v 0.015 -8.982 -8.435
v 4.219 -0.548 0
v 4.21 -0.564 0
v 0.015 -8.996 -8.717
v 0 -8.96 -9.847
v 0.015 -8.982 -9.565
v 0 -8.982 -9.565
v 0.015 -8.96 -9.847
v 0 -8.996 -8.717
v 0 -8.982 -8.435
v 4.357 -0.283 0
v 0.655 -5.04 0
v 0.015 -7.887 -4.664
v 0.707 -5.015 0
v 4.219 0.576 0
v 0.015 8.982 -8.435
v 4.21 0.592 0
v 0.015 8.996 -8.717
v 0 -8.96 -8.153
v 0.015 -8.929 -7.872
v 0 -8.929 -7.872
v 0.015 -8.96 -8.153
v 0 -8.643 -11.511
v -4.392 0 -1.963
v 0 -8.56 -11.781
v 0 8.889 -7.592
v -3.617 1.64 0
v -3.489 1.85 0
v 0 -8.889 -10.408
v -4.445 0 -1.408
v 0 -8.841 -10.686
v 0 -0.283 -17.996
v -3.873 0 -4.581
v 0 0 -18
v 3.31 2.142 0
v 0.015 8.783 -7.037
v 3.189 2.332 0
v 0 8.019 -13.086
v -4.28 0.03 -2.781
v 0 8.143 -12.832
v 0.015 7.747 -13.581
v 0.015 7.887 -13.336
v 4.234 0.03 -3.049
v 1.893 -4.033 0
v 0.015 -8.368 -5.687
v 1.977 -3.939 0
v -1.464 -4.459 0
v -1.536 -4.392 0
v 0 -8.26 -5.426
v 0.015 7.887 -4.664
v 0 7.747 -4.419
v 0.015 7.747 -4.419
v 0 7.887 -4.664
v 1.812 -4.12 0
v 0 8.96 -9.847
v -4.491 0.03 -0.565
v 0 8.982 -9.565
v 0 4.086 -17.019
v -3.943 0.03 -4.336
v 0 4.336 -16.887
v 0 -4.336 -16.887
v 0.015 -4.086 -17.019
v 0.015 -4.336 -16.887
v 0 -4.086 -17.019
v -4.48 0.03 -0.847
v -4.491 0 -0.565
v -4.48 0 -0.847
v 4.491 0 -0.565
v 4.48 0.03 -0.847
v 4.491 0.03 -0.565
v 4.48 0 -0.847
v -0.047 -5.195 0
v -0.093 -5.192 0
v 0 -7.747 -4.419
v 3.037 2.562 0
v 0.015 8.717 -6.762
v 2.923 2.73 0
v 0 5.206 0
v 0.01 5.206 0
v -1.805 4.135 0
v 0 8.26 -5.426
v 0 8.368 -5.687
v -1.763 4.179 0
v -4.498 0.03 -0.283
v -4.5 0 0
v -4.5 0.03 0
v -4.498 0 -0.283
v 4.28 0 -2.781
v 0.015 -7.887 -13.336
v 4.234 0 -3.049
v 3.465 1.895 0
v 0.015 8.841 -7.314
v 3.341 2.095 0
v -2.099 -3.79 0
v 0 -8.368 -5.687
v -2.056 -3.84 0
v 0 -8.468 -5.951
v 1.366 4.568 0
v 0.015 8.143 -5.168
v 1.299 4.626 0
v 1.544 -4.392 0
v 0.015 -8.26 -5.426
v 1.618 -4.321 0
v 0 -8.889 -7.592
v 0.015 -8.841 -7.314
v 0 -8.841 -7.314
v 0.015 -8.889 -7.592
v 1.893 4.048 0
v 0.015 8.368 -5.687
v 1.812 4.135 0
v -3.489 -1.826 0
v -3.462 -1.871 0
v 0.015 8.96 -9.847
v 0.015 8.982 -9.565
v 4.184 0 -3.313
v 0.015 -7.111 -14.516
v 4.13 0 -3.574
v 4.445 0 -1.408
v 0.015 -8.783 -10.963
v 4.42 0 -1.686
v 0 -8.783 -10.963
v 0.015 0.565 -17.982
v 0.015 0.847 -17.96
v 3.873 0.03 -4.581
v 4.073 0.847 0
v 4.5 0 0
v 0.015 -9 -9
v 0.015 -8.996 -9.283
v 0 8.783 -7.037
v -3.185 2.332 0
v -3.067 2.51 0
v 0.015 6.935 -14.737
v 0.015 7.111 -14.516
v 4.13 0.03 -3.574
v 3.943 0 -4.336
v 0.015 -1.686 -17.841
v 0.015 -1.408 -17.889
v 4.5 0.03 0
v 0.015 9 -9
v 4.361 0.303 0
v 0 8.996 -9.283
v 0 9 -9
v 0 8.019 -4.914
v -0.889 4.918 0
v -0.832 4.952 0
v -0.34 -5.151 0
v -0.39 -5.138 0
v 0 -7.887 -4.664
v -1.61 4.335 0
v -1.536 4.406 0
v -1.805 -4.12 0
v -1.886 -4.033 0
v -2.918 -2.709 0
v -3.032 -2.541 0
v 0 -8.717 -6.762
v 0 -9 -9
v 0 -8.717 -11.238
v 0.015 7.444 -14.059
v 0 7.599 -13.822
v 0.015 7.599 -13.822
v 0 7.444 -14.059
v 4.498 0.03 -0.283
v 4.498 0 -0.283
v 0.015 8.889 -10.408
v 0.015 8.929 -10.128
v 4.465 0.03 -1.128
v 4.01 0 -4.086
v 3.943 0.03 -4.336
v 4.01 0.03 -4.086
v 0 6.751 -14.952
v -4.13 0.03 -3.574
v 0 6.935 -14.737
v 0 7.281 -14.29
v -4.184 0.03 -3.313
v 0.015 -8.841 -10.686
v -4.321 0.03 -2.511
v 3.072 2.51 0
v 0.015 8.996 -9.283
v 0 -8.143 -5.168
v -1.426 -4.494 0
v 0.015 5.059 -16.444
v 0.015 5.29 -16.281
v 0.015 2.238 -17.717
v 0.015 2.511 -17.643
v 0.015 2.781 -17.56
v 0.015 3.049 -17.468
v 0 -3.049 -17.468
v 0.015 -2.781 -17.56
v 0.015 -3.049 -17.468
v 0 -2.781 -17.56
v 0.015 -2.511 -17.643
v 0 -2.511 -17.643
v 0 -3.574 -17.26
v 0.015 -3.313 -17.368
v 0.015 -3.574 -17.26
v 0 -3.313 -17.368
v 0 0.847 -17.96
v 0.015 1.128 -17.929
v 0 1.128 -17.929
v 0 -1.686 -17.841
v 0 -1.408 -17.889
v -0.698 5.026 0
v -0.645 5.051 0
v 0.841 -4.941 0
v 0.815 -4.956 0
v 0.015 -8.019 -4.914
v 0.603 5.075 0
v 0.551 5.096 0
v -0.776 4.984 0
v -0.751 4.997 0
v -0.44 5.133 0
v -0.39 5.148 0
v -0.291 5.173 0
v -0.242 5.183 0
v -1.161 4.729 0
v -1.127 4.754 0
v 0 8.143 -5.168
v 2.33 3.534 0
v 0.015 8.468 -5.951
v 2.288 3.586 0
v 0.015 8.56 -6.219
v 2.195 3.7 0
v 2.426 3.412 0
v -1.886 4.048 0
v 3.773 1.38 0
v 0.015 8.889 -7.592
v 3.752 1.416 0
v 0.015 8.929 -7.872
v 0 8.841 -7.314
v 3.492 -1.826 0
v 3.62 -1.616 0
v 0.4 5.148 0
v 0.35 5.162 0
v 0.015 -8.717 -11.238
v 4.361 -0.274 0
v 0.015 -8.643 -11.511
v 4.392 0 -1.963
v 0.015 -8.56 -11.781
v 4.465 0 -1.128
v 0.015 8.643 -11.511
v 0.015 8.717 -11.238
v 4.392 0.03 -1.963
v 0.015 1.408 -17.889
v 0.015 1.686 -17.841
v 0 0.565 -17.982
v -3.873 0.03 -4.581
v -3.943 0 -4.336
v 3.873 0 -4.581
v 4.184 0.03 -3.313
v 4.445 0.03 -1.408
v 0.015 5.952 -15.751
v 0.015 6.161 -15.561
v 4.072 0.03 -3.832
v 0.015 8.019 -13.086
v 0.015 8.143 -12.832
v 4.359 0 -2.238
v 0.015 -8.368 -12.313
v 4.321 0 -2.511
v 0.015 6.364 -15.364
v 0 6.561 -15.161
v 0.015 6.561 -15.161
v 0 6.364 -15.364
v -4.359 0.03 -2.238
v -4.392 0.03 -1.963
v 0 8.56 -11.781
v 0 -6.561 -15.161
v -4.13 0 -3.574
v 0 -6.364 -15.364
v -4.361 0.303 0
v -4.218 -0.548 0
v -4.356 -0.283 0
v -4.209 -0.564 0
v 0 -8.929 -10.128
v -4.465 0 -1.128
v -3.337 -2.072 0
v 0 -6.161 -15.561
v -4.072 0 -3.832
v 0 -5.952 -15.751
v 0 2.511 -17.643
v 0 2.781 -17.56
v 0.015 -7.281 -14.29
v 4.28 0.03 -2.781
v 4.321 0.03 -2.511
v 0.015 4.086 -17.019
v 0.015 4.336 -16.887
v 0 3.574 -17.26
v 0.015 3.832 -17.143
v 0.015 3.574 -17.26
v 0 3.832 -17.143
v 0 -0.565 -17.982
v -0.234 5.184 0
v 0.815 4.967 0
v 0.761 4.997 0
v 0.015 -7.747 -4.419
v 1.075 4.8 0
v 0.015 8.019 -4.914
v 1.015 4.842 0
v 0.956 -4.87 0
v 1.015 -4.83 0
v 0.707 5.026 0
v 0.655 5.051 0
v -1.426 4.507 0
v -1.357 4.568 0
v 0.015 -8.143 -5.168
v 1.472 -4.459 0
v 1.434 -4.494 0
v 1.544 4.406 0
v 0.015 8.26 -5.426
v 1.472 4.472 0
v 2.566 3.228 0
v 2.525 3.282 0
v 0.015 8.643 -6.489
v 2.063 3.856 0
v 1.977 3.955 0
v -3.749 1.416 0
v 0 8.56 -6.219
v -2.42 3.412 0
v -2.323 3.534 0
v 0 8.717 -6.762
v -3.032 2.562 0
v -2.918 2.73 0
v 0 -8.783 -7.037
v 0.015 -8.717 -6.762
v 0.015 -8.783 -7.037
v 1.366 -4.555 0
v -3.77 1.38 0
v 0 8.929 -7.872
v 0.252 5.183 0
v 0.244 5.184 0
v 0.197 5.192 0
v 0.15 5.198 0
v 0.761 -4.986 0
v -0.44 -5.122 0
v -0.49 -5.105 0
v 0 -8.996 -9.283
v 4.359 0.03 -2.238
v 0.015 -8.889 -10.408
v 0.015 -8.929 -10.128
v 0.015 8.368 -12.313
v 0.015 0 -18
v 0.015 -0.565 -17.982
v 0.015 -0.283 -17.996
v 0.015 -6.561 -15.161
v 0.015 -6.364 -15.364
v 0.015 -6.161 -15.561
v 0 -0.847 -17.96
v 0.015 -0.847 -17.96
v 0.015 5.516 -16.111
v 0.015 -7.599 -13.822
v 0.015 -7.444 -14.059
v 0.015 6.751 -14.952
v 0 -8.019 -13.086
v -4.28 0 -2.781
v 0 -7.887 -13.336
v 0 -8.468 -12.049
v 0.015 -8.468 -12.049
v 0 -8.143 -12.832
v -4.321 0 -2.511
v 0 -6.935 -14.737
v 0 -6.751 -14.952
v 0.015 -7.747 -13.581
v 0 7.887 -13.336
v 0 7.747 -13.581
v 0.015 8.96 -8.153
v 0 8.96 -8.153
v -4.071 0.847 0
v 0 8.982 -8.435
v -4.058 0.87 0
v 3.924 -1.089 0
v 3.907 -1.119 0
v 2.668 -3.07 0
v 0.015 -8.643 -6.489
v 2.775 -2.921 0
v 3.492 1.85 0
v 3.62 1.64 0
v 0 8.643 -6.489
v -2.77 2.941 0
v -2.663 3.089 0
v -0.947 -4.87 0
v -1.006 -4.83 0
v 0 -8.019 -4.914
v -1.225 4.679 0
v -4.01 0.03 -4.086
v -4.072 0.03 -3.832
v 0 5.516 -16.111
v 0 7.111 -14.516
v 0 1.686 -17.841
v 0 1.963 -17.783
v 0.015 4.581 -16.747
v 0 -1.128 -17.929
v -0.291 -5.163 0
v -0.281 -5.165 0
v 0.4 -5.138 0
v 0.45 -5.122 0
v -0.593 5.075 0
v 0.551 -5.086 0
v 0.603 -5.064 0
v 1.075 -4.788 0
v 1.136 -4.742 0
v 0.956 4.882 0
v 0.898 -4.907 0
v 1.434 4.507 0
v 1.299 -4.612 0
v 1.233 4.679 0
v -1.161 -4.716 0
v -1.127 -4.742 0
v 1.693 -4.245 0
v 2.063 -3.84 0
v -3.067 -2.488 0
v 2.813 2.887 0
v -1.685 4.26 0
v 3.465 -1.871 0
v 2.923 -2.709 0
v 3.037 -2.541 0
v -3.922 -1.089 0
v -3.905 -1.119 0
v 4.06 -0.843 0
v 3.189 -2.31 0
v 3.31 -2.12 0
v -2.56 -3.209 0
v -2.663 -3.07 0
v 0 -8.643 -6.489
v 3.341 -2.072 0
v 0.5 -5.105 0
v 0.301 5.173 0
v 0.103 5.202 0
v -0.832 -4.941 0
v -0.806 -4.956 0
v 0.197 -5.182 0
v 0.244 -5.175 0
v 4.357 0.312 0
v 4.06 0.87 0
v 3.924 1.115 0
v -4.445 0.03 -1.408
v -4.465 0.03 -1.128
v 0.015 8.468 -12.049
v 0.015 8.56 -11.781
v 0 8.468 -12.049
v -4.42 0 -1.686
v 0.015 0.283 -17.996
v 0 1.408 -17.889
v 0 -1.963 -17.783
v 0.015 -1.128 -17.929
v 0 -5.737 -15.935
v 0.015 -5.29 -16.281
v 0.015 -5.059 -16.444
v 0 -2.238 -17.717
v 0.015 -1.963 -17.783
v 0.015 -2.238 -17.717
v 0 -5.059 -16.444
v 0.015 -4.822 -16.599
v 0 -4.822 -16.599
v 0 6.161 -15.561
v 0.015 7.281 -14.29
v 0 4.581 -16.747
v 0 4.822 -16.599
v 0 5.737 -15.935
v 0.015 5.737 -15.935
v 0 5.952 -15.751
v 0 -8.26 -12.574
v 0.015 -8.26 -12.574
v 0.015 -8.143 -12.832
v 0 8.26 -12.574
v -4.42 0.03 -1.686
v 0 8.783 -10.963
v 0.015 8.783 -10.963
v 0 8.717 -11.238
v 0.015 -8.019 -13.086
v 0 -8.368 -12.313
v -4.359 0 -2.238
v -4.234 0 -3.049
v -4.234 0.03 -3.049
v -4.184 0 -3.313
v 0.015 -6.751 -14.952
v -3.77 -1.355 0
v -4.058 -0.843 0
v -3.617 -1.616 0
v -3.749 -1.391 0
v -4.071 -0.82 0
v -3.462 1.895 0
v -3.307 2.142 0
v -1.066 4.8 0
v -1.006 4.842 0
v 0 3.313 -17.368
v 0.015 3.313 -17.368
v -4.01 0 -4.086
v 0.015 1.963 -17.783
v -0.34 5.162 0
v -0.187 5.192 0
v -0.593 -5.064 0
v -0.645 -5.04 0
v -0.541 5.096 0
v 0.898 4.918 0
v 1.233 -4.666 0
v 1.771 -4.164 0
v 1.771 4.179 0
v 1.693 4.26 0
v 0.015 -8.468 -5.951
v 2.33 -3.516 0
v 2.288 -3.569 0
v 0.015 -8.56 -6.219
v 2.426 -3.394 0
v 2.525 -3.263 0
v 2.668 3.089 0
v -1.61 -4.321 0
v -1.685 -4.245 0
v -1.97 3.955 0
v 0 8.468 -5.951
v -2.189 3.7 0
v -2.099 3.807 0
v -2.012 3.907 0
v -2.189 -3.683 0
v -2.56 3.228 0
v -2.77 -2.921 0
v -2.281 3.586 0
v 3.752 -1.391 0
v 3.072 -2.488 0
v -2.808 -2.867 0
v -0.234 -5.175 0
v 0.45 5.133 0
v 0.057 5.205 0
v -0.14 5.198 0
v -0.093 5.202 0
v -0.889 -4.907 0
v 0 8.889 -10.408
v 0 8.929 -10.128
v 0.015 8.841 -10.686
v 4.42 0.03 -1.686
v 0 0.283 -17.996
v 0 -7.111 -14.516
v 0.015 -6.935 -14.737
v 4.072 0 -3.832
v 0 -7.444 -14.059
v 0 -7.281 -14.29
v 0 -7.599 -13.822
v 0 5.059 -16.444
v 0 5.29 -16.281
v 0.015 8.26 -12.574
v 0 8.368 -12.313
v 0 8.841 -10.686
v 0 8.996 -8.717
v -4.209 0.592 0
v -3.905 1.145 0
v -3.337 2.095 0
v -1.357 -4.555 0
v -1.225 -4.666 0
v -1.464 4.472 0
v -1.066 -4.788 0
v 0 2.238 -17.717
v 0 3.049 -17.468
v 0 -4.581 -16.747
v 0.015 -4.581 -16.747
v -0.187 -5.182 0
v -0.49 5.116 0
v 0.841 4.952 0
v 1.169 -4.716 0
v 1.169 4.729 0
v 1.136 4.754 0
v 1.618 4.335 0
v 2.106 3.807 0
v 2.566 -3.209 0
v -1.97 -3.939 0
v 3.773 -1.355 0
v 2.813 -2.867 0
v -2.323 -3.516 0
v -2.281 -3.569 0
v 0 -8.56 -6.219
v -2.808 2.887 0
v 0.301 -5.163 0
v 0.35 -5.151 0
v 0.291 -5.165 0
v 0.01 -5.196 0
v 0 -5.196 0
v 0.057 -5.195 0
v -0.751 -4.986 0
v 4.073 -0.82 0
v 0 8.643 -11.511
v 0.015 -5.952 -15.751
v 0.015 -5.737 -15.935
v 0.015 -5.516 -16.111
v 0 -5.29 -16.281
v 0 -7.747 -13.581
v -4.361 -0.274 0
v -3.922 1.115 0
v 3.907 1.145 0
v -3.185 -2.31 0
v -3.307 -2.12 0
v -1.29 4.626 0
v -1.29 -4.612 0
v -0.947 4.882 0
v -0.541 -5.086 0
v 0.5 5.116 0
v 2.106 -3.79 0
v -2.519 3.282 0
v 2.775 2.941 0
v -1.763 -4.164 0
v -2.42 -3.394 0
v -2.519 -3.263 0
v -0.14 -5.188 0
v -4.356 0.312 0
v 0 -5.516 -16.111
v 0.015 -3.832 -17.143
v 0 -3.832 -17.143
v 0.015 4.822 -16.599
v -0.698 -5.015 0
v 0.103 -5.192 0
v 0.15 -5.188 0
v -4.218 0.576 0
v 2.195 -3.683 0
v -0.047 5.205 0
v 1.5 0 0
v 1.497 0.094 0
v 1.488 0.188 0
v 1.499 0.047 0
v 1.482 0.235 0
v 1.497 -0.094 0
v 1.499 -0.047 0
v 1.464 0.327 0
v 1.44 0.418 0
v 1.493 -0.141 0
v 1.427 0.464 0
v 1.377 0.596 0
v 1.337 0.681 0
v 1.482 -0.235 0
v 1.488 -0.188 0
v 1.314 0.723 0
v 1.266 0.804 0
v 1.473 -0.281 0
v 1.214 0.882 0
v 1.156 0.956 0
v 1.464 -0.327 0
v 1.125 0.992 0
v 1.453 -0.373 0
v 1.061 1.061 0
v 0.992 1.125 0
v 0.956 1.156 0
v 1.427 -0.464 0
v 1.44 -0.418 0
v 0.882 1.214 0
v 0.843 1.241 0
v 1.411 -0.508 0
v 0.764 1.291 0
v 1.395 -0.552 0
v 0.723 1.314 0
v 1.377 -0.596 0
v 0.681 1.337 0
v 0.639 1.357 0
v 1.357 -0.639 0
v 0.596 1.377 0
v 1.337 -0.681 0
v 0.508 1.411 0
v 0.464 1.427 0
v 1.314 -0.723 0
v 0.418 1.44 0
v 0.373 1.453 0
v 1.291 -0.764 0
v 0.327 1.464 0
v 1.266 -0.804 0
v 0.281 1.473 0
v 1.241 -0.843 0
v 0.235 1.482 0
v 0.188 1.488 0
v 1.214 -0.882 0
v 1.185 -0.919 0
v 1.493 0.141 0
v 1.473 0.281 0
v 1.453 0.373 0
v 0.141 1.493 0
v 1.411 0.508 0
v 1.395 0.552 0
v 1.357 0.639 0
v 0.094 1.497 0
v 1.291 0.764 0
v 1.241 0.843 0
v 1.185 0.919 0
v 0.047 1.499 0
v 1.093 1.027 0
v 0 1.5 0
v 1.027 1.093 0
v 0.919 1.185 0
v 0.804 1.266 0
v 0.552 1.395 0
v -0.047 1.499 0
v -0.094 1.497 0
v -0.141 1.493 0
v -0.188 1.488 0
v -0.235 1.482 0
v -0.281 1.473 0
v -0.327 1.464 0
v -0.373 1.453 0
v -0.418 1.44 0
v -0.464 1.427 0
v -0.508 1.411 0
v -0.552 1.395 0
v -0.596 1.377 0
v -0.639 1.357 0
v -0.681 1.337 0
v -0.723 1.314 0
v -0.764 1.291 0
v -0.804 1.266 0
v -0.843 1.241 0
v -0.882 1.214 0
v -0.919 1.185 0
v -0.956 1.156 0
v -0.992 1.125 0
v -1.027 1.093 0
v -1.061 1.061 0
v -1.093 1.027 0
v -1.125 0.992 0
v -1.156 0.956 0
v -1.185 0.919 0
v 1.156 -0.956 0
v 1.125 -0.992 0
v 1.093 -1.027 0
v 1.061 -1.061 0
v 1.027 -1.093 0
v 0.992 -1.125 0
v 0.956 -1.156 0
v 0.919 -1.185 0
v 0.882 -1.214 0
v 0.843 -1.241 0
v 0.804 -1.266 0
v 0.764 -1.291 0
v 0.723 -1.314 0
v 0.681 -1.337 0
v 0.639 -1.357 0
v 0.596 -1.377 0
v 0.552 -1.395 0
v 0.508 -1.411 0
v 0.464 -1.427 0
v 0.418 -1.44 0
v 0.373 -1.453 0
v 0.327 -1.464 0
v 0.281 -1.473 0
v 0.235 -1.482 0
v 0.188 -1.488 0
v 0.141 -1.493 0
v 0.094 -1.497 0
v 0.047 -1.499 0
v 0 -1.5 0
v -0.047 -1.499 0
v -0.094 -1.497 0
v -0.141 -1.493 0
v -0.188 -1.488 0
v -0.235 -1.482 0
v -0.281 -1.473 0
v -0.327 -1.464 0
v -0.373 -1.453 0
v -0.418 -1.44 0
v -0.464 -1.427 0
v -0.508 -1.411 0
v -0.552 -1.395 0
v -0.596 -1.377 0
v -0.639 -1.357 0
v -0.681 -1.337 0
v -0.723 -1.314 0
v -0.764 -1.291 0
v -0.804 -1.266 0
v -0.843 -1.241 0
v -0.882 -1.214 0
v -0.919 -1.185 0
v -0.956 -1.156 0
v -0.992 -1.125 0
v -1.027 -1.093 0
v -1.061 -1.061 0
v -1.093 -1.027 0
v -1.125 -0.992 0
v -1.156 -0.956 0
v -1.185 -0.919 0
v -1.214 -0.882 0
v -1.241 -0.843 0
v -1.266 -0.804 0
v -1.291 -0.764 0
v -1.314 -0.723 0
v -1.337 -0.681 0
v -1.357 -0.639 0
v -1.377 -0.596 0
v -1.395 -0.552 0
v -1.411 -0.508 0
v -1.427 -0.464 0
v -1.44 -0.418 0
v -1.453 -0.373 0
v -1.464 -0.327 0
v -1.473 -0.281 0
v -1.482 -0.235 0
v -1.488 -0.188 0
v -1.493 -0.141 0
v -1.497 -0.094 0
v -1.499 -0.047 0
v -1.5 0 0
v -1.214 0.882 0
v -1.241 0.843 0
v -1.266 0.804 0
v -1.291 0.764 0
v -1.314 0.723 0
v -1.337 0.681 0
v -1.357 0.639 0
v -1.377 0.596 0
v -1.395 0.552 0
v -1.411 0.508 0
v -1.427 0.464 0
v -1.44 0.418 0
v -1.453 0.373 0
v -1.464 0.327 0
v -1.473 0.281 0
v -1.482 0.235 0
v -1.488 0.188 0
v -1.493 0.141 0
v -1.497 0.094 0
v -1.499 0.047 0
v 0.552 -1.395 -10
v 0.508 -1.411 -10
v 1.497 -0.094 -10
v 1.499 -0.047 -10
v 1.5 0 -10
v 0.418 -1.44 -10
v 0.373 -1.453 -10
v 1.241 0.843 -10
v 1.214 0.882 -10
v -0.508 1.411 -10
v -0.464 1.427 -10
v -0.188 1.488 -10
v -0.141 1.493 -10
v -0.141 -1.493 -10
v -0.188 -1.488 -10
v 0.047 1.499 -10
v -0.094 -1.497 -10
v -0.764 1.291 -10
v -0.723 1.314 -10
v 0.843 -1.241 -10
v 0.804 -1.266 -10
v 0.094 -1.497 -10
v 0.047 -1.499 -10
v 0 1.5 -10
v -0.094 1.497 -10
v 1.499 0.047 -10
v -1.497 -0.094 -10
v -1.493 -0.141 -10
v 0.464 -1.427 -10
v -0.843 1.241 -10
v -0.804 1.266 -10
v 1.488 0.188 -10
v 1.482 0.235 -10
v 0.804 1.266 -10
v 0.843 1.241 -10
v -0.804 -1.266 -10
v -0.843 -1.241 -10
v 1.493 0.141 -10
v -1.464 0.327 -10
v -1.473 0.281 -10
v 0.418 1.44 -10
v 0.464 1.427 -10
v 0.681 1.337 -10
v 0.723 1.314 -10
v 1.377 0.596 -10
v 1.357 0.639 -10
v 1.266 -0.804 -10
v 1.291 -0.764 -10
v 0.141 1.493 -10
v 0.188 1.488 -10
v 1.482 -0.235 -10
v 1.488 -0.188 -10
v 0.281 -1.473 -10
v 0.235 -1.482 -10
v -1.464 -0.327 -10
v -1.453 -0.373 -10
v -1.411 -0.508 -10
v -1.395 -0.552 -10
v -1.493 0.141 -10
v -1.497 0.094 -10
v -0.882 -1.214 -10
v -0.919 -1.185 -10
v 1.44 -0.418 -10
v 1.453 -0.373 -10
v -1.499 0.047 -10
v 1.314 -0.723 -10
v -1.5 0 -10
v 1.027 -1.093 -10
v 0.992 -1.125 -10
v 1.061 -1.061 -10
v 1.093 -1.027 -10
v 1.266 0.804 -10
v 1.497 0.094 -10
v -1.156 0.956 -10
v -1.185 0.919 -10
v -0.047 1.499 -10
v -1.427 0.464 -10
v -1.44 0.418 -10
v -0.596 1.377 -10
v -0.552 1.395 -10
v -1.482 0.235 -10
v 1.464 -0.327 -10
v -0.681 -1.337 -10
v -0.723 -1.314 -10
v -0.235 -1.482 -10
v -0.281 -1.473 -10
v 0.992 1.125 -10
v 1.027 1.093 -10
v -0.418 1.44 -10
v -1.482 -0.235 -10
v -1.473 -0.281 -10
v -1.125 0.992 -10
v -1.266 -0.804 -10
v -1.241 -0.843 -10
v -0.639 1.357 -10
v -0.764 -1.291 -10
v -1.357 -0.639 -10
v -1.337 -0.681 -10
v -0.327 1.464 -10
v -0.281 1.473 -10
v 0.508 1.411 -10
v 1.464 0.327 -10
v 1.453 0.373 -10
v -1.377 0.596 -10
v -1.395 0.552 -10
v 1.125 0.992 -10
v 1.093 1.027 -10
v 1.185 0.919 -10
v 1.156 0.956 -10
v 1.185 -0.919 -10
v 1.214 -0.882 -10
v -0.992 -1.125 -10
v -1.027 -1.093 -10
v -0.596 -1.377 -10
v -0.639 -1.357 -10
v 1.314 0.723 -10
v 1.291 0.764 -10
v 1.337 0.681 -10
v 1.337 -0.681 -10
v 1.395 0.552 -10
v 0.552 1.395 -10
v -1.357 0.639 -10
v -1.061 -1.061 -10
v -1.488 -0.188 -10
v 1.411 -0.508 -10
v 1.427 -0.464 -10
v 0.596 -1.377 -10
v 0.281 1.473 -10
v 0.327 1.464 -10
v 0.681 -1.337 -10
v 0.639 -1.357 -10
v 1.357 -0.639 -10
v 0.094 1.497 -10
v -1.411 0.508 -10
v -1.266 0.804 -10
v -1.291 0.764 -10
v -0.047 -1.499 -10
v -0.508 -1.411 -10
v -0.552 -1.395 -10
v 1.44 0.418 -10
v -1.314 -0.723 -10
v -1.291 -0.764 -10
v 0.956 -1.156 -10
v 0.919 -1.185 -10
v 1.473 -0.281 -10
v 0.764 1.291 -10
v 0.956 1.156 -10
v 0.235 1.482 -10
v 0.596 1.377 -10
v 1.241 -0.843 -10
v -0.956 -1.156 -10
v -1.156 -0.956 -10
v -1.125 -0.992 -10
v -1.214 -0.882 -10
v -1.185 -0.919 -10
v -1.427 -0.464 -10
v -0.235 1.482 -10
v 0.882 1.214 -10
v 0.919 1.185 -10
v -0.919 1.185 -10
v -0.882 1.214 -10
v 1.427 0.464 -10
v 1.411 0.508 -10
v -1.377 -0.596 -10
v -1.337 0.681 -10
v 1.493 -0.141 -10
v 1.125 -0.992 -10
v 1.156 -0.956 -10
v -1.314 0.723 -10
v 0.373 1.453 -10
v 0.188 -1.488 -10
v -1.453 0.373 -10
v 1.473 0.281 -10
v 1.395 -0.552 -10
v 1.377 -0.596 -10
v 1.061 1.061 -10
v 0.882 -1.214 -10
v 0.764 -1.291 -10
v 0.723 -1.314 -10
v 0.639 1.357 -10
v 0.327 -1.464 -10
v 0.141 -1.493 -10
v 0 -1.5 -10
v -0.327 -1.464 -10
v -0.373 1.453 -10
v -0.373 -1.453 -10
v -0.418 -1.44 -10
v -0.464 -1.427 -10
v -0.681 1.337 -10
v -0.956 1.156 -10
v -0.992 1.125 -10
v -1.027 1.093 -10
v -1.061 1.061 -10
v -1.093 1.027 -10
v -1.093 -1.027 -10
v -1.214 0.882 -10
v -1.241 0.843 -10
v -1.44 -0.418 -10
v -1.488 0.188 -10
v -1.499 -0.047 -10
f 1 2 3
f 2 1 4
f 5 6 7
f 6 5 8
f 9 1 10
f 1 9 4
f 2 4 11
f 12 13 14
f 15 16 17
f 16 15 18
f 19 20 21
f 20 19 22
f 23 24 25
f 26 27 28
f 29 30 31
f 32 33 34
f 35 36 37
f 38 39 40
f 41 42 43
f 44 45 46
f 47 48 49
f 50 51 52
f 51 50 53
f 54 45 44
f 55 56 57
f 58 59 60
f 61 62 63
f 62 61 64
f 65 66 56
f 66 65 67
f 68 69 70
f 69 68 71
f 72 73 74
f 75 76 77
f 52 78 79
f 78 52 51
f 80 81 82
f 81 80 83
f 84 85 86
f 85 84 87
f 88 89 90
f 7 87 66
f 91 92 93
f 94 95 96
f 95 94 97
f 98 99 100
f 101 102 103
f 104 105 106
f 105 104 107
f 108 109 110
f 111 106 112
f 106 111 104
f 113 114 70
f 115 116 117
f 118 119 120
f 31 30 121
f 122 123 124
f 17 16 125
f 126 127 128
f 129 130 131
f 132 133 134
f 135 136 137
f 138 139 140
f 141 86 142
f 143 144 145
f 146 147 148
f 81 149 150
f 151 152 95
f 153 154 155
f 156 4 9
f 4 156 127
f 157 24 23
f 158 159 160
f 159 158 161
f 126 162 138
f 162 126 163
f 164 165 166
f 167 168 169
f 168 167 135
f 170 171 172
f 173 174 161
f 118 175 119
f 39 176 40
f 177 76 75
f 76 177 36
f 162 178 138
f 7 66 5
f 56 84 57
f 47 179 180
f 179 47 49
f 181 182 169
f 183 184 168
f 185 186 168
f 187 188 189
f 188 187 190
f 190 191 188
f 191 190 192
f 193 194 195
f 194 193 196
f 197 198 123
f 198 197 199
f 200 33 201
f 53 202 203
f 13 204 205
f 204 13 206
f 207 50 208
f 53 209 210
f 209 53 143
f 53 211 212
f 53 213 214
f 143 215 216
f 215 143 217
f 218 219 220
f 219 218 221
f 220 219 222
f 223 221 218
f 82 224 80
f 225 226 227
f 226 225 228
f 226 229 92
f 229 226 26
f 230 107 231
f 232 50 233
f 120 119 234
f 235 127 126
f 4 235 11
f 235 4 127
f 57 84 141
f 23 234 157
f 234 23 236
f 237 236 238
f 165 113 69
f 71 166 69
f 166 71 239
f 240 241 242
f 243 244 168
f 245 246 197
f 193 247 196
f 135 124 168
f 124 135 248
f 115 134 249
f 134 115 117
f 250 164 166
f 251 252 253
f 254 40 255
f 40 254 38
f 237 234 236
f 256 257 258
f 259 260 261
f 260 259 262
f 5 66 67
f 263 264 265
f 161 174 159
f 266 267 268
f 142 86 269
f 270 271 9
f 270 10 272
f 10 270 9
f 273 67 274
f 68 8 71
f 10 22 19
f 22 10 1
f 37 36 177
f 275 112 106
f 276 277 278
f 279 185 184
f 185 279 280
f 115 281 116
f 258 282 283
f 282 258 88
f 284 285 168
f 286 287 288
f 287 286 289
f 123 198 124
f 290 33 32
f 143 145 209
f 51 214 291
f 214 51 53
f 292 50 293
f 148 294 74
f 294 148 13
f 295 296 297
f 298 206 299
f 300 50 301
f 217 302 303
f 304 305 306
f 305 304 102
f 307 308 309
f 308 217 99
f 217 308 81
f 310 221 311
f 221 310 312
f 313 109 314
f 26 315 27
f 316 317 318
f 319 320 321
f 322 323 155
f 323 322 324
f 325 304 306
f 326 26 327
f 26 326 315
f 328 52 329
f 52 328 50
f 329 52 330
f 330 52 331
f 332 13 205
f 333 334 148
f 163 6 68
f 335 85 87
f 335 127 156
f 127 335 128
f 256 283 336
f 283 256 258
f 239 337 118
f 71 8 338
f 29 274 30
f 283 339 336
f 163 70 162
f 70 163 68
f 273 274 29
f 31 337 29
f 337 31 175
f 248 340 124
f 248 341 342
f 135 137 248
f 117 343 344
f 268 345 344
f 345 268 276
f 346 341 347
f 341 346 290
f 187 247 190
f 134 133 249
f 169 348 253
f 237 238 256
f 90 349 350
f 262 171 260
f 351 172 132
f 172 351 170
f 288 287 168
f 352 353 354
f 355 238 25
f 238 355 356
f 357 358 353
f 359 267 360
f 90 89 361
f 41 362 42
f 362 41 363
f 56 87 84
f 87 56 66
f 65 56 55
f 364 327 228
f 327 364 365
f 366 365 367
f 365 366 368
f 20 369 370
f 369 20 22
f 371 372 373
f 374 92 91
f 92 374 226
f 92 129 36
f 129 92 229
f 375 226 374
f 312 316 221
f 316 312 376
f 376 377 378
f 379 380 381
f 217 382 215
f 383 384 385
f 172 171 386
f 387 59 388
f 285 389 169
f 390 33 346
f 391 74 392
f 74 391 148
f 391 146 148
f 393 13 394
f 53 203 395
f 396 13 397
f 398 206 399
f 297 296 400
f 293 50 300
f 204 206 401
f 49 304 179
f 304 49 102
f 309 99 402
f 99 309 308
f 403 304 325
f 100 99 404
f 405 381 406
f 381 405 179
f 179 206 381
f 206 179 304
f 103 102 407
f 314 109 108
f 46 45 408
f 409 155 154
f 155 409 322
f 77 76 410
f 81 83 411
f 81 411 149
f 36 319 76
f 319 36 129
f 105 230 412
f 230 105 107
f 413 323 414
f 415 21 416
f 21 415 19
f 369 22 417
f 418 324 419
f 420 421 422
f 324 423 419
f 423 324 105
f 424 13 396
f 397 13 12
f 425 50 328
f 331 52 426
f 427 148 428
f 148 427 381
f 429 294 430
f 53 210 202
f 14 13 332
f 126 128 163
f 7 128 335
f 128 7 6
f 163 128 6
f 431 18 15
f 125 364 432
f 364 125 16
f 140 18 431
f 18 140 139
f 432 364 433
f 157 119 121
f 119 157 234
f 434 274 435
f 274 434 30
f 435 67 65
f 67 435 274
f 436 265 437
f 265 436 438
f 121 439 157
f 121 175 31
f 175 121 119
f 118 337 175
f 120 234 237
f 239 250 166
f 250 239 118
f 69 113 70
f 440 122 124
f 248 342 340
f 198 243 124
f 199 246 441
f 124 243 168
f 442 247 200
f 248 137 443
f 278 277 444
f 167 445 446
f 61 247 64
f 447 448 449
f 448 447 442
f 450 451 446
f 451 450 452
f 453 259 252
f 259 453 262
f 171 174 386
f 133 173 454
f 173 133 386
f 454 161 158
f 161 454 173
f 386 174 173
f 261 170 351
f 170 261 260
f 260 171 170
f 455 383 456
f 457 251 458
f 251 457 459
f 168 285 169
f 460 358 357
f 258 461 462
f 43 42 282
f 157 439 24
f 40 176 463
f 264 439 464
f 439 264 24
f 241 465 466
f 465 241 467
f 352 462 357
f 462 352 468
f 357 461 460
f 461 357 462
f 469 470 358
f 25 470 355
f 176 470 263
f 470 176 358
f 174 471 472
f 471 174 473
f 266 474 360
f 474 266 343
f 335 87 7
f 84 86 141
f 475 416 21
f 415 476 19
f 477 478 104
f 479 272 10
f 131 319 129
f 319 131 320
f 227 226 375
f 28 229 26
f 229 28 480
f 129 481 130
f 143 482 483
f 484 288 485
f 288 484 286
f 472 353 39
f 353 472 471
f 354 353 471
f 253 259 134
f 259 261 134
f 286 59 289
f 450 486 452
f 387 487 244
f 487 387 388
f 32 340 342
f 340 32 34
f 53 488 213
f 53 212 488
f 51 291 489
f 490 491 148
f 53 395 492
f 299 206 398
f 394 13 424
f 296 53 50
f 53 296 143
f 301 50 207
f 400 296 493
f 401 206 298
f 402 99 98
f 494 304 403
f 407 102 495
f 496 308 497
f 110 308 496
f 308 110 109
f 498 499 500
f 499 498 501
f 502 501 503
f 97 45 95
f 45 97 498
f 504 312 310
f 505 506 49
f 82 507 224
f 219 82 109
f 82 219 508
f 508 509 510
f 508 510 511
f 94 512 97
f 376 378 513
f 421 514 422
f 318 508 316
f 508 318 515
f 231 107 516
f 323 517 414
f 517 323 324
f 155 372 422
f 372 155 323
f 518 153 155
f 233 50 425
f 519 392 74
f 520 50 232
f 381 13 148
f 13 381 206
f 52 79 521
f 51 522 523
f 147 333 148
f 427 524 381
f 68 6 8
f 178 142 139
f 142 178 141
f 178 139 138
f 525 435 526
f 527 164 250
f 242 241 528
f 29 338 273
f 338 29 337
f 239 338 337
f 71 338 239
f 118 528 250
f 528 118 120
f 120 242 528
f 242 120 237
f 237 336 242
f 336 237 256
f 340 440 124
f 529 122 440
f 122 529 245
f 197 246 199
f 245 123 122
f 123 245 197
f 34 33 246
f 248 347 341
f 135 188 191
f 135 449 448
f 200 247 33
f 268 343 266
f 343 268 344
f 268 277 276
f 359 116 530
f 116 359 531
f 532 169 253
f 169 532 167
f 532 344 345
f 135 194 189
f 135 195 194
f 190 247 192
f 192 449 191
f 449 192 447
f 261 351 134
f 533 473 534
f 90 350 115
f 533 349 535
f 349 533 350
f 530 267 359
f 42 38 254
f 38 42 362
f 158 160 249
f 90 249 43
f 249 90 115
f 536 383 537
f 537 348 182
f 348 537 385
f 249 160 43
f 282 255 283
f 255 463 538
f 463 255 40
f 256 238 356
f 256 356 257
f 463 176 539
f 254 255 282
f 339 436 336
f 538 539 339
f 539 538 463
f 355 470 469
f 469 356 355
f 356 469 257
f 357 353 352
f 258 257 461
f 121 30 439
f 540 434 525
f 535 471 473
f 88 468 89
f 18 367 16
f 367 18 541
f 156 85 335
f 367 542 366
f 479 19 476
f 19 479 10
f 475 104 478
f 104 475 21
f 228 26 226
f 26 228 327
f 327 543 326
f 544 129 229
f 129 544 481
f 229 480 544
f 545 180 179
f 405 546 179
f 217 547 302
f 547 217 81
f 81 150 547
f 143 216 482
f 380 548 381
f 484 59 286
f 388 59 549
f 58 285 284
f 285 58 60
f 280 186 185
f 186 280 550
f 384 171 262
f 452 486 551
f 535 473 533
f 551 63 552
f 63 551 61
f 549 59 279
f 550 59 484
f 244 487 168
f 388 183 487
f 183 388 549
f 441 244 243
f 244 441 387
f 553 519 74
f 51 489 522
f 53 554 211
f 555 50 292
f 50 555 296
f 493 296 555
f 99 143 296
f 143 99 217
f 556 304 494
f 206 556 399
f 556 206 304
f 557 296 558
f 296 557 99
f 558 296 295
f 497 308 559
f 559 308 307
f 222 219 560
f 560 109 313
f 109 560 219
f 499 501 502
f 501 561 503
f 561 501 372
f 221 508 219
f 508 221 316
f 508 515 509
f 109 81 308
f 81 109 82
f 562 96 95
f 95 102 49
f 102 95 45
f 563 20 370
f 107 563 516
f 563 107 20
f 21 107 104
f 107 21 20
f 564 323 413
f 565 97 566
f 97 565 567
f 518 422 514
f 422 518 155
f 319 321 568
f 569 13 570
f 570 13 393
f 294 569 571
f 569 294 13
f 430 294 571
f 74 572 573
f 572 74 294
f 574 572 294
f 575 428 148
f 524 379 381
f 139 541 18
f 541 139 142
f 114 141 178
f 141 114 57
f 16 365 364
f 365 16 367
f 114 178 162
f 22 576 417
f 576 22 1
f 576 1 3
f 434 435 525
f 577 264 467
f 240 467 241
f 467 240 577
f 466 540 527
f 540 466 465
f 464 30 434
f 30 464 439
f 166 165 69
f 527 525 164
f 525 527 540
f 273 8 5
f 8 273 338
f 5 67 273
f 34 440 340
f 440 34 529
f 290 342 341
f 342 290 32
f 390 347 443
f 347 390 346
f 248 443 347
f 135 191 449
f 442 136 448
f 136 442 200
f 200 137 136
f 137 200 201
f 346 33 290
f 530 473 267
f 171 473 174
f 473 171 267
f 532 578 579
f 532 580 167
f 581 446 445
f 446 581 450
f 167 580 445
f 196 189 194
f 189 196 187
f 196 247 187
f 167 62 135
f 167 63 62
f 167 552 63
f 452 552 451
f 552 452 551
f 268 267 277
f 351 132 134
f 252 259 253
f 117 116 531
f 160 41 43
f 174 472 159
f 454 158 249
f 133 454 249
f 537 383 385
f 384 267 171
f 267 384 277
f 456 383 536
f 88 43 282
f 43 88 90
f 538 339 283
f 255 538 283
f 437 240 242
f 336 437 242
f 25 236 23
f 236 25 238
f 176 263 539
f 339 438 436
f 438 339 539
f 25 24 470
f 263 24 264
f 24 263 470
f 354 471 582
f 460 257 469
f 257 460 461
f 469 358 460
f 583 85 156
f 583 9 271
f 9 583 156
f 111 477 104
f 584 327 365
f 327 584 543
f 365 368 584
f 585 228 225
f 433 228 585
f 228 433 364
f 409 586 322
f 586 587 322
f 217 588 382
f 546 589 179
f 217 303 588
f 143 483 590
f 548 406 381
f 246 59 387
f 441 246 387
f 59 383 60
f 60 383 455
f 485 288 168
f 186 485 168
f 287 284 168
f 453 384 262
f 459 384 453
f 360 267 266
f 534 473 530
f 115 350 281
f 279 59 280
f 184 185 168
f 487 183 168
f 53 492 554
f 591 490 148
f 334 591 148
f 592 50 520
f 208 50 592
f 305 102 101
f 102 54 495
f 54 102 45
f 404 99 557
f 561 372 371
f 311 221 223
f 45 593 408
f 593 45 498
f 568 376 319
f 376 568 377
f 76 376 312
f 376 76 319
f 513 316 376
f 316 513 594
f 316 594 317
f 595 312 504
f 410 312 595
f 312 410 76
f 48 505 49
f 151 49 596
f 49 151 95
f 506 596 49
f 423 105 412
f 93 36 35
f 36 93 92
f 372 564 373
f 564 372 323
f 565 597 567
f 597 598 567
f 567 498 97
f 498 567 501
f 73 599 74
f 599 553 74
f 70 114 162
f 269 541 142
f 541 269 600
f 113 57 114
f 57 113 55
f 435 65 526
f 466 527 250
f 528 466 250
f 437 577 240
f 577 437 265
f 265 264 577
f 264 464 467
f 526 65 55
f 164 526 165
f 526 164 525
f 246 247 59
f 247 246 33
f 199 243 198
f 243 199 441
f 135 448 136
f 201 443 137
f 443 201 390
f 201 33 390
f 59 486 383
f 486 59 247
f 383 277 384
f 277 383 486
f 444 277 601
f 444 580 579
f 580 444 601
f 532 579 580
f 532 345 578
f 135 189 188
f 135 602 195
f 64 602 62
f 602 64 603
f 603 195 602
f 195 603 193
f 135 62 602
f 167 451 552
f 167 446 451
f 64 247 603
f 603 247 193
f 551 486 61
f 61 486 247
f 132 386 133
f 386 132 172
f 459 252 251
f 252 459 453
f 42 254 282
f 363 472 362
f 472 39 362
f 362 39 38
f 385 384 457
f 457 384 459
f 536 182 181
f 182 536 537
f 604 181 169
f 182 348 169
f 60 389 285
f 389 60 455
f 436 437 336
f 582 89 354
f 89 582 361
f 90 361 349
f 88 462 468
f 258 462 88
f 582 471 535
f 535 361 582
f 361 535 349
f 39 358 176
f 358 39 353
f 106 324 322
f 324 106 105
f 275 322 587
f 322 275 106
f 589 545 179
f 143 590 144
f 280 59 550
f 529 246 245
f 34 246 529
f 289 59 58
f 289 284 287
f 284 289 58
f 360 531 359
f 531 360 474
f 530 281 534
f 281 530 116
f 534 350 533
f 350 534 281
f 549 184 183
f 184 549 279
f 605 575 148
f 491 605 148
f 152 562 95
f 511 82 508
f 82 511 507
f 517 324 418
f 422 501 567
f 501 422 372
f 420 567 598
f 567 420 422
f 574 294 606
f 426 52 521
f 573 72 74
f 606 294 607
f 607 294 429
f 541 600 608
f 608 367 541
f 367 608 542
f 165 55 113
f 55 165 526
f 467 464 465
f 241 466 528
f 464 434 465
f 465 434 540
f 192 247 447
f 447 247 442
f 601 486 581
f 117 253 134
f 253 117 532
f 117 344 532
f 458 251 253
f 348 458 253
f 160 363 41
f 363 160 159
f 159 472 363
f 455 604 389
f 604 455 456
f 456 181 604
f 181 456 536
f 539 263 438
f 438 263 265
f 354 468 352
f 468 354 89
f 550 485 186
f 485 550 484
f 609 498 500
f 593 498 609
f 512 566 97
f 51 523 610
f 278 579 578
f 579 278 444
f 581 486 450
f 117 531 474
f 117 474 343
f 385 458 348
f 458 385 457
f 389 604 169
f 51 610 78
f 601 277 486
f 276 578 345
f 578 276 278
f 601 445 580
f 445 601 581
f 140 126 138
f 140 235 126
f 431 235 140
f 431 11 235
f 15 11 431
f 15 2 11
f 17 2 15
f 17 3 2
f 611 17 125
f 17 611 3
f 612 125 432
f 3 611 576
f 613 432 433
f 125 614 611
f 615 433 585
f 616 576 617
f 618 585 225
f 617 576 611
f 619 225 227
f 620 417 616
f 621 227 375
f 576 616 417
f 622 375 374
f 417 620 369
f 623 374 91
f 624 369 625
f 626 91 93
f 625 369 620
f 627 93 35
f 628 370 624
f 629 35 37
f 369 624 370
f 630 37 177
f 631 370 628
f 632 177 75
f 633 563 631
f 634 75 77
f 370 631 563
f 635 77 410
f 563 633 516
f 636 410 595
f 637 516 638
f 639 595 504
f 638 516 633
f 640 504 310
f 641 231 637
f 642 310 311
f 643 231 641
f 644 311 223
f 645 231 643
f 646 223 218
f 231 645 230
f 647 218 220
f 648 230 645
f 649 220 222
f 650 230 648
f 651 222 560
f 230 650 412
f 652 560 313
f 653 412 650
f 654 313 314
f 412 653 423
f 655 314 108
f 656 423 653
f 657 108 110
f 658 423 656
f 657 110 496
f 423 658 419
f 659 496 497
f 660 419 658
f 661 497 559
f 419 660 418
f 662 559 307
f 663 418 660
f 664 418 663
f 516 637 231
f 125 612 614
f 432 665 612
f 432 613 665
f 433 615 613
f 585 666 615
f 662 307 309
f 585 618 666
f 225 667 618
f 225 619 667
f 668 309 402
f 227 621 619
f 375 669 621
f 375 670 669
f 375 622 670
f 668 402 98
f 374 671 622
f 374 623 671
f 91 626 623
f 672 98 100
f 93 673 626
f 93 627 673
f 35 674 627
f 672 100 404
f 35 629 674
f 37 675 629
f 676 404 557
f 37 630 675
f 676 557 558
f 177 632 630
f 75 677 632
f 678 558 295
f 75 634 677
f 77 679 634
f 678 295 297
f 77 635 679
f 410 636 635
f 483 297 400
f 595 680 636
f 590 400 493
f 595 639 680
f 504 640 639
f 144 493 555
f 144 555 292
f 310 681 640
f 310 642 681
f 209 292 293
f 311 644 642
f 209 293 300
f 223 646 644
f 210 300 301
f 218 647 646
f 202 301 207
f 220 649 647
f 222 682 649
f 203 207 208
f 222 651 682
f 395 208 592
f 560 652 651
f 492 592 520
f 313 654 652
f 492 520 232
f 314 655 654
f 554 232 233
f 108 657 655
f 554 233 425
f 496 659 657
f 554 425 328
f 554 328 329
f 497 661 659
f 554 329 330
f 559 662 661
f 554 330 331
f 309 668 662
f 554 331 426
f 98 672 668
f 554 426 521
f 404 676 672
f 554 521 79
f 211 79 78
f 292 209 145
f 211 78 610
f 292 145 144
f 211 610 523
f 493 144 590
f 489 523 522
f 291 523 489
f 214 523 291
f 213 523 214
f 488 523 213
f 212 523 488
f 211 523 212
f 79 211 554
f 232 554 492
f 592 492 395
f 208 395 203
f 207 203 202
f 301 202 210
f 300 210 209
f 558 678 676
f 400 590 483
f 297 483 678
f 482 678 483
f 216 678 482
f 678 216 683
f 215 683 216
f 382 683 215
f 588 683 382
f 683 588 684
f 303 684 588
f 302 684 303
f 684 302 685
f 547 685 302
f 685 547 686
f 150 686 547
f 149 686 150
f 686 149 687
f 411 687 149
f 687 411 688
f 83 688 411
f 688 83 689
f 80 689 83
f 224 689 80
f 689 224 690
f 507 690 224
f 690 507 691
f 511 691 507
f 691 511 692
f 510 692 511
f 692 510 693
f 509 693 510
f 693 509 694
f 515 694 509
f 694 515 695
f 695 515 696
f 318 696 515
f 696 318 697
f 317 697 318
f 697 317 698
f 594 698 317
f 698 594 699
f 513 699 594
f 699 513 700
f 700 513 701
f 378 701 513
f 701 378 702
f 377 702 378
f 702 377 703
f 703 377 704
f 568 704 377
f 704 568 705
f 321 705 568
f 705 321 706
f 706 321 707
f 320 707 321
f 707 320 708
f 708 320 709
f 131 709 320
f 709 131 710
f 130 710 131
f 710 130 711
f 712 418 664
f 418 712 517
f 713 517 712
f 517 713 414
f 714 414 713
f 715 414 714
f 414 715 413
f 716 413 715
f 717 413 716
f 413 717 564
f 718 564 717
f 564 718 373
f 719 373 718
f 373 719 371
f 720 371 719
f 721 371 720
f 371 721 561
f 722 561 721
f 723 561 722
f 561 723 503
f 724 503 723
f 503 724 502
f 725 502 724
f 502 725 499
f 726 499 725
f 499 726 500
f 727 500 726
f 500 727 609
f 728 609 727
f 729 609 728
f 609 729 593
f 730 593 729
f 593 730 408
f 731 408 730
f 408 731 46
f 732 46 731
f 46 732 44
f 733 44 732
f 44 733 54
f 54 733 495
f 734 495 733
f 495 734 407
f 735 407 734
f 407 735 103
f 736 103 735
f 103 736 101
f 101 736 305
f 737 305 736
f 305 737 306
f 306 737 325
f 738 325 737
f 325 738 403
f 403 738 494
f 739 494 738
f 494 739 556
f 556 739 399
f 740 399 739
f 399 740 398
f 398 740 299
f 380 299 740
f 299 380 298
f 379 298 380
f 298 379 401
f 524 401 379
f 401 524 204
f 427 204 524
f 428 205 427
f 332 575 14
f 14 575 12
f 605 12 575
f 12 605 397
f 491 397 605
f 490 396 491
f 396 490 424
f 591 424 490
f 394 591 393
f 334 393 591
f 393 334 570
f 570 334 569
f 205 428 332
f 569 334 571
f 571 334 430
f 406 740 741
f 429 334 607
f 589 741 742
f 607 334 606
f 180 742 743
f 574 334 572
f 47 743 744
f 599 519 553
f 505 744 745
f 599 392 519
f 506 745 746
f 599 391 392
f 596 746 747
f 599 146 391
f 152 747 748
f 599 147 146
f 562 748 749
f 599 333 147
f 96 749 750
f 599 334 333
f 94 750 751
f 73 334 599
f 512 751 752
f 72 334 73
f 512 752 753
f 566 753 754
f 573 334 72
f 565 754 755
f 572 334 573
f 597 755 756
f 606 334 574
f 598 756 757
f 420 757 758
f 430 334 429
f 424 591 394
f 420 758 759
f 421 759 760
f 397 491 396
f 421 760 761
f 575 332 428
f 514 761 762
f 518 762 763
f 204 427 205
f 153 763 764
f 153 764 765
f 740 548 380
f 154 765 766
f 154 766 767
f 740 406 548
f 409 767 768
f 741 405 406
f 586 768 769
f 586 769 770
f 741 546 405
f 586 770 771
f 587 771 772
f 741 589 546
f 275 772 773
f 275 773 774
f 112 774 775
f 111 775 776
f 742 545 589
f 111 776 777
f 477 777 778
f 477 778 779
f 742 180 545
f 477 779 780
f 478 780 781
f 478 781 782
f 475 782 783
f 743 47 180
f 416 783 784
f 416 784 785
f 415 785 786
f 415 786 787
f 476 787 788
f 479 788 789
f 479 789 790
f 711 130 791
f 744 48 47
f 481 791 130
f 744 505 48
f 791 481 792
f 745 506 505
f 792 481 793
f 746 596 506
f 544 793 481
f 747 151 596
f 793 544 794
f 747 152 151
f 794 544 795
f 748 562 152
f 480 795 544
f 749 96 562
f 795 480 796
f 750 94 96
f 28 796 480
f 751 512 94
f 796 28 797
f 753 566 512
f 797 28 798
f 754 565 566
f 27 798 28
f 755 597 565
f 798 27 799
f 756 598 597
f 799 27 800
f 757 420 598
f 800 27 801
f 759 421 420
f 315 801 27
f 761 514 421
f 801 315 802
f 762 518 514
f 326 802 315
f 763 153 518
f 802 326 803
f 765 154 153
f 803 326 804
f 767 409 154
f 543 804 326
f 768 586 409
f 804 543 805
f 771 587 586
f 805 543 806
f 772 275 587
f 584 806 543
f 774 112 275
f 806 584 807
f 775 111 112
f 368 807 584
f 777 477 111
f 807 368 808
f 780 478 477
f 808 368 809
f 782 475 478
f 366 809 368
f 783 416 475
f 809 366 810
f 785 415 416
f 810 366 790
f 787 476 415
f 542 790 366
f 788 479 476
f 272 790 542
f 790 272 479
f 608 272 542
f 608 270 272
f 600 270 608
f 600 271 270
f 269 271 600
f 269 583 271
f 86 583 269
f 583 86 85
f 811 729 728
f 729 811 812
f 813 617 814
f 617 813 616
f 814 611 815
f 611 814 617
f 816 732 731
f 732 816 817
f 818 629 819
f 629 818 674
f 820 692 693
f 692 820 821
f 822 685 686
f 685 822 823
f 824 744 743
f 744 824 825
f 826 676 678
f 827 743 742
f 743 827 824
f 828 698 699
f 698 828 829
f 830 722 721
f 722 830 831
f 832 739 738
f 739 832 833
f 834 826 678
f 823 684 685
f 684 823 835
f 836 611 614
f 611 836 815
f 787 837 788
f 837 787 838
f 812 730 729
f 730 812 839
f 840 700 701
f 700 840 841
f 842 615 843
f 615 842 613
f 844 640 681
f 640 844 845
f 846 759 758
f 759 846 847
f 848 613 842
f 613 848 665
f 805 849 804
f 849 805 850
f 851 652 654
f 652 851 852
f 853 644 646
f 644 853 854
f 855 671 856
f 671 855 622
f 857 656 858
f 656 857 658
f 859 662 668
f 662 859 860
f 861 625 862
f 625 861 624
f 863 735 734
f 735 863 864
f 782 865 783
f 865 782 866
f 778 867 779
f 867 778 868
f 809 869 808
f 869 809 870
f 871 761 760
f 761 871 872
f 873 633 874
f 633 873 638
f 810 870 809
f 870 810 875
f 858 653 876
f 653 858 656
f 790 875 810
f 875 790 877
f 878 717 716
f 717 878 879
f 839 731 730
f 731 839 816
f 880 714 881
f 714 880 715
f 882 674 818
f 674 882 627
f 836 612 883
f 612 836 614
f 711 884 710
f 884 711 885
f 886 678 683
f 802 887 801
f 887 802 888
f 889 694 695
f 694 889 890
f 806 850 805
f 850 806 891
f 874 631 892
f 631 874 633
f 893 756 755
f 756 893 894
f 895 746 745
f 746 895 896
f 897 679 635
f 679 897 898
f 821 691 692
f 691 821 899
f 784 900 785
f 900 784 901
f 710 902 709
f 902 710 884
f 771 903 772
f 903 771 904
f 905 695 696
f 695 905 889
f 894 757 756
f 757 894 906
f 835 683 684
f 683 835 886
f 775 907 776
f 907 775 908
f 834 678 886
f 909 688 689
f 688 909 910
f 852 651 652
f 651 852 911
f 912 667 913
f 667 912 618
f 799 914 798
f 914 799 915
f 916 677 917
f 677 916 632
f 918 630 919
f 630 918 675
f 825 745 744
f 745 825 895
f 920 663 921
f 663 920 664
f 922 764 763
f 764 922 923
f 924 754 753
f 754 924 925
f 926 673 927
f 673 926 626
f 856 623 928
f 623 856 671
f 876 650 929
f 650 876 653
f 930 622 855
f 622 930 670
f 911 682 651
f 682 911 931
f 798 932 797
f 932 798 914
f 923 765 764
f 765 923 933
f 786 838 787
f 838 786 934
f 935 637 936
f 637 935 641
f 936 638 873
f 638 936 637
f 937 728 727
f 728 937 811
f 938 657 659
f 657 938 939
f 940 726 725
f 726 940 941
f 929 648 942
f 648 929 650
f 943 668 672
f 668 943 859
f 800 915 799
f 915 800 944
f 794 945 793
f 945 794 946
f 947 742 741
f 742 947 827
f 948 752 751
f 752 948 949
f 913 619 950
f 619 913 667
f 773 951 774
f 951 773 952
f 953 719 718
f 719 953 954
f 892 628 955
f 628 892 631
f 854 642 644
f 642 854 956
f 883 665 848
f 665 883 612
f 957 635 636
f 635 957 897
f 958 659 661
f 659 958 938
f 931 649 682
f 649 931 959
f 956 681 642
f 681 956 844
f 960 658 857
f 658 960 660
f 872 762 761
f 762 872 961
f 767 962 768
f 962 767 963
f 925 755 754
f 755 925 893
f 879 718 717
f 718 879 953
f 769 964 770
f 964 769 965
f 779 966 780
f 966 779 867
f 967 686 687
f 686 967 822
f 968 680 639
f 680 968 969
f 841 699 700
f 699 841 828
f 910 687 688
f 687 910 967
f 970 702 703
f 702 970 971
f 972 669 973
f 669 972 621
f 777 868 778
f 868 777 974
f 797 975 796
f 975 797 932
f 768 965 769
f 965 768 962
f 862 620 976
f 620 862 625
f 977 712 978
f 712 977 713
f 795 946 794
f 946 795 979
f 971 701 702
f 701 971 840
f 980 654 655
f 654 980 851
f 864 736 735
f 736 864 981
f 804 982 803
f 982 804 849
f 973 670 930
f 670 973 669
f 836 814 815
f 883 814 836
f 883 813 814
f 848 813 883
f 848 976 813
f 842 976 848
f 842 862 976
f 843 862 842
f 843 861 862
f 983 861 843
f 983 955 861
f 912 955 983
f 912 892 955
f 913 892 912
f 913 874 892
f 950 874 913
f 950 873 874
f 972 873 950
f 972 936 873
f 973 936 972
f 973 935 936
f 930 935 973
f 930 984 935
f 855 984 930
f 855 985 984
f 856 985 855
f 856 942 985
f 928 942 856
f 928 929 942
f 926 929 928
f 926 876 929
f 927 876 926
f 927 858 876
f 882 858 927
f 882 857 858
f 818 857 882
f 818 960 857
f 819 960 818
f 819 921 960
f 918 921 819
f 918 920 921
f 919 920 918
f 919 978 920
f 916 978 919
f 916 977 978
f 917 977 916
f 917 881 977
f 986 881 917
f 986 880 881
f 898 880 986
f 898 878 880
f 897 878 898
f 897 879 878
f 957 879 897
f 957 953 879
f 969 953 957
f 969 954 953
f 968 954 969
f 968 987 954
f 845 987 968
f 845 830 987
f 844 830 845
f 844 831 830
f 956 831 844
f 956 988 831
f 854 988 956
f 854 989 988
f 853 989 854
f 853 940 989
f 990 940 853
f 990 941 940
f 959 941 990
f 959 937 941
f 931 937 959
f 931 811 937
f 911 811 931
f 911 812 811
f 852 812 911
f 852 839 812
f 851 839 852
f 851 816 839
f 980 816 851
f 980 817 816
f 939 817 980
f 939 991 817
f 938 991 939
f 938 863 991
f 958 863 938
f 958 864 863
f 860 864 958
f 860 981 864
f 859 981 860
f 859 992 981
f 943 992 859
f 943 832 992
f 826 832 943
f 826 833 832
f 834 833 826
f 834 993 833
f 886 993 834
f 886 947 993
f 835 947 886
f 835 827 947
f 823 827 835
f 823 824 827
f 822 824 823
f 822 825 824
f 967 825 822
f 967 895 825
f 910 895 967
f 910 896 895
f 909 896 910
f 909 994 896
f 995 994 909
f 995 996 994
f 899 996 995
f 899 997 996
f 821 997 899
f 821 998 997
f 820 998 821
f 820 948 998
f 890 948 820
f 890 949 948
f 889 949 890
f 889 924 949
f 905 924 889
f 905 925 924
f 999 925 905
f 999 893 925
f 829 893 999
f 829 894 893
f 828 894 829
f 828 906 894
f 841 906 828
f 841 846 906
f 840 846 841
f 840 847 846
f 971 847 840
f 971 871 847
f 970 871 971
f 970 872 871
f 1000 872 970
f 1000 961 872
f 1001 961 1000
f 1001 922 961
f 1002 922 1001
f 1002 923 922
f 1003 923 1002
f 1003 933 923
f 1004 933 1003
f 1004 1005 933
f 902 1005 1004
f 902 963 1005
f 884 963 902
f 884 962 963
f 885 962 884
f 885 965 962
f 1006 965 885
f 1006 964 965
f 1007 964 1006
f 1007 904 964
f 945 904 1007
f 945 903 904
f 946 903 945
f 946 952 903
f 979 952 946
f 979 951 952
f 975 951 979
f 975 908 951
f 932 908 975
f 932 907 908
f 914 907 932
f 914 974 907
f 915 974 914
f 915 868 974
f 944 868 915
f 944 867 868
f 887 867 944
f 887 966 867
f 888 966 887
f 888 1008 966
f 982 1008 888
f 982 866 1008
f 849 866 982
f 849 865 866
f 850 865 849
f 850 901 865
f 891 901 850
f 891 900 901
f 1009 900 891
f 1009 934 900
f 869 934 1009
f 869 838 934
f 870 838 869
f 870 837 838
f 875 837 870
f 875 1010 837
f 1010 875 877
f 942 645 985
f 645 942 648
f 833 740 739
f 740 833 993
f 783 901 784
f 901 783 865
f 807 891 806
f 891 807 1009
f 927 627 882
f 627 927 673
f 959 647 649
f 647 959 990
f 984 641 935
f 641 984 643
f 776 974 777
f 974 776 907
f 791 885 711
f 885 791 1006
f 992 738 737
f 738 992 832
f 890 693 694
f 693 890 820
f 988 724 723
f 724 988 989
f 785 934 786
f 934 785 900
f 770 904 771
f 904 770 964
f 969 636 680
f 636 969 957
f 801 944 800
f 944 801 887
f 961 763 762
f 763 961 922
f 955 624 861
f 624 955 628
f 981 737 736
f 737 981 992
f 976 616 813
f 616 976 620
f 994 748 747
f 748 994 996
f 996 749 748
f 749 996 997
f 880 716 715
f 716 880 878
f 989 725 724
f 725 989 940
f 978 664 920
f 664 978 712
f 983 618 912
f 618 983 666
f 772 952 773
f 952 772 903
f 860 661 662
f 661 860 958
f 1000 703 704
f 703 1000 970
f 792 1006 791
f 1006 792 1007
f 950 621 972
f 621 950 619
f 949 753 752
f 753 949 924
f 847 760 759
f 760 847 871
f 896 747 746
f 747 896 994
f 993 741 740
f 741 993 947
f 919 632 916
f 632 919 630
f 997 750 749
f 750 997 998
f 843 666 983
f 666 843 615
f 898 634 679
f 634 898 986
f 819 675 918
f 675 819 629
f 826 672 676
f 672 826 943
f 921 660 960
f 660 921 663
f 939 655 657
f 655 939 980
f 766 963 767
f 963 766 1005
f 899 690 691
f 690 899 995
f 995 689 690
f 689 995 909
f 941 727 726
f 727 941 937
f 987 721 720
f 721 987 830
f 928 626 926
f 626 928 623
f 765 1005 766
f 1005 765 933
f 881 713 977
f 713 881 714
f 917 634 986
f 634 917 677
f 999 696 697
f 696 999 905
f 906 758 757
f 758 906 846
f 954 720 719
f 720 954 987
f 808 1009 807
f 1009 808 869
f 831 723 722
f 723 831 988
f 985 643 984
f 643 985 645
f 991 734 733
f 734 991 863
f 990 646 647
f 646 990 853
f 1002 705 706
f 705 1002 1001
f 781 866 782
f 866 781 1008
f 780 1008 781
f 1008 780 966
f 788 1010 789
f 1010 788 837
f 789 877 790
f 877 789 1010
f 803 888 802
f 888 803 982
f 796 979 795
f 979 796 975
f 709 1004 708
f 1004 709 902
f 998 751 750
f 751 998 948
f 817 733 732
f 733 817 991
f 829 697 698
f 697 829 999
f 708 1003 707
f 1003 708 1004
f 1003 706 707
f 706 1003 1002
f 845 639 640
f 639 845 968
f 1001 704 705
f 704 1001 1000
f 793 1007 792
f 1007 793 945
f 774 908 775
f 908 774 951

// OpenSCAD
// http://kitwallace.tumblr.com/post/85636282539/oloid

module oloid(r) {
   hull() {
     cylinder(r=r,h=0.1);
     translate([0,r,0])
         rotate([0,90,0])
            cylinder(r=r,h=0.1);
   }
};
$fn=200;

rotate(270,[1,0,0])
difference() {
scale(0.3)
intersection() {
    scale([0.5,1,1])
    oloid(30);
    translate([0,50,0])
    cube([100,100,100],center=true);
}

rotate(270,[1,0,0])
cylinder(r=3/2,h=10);
}
